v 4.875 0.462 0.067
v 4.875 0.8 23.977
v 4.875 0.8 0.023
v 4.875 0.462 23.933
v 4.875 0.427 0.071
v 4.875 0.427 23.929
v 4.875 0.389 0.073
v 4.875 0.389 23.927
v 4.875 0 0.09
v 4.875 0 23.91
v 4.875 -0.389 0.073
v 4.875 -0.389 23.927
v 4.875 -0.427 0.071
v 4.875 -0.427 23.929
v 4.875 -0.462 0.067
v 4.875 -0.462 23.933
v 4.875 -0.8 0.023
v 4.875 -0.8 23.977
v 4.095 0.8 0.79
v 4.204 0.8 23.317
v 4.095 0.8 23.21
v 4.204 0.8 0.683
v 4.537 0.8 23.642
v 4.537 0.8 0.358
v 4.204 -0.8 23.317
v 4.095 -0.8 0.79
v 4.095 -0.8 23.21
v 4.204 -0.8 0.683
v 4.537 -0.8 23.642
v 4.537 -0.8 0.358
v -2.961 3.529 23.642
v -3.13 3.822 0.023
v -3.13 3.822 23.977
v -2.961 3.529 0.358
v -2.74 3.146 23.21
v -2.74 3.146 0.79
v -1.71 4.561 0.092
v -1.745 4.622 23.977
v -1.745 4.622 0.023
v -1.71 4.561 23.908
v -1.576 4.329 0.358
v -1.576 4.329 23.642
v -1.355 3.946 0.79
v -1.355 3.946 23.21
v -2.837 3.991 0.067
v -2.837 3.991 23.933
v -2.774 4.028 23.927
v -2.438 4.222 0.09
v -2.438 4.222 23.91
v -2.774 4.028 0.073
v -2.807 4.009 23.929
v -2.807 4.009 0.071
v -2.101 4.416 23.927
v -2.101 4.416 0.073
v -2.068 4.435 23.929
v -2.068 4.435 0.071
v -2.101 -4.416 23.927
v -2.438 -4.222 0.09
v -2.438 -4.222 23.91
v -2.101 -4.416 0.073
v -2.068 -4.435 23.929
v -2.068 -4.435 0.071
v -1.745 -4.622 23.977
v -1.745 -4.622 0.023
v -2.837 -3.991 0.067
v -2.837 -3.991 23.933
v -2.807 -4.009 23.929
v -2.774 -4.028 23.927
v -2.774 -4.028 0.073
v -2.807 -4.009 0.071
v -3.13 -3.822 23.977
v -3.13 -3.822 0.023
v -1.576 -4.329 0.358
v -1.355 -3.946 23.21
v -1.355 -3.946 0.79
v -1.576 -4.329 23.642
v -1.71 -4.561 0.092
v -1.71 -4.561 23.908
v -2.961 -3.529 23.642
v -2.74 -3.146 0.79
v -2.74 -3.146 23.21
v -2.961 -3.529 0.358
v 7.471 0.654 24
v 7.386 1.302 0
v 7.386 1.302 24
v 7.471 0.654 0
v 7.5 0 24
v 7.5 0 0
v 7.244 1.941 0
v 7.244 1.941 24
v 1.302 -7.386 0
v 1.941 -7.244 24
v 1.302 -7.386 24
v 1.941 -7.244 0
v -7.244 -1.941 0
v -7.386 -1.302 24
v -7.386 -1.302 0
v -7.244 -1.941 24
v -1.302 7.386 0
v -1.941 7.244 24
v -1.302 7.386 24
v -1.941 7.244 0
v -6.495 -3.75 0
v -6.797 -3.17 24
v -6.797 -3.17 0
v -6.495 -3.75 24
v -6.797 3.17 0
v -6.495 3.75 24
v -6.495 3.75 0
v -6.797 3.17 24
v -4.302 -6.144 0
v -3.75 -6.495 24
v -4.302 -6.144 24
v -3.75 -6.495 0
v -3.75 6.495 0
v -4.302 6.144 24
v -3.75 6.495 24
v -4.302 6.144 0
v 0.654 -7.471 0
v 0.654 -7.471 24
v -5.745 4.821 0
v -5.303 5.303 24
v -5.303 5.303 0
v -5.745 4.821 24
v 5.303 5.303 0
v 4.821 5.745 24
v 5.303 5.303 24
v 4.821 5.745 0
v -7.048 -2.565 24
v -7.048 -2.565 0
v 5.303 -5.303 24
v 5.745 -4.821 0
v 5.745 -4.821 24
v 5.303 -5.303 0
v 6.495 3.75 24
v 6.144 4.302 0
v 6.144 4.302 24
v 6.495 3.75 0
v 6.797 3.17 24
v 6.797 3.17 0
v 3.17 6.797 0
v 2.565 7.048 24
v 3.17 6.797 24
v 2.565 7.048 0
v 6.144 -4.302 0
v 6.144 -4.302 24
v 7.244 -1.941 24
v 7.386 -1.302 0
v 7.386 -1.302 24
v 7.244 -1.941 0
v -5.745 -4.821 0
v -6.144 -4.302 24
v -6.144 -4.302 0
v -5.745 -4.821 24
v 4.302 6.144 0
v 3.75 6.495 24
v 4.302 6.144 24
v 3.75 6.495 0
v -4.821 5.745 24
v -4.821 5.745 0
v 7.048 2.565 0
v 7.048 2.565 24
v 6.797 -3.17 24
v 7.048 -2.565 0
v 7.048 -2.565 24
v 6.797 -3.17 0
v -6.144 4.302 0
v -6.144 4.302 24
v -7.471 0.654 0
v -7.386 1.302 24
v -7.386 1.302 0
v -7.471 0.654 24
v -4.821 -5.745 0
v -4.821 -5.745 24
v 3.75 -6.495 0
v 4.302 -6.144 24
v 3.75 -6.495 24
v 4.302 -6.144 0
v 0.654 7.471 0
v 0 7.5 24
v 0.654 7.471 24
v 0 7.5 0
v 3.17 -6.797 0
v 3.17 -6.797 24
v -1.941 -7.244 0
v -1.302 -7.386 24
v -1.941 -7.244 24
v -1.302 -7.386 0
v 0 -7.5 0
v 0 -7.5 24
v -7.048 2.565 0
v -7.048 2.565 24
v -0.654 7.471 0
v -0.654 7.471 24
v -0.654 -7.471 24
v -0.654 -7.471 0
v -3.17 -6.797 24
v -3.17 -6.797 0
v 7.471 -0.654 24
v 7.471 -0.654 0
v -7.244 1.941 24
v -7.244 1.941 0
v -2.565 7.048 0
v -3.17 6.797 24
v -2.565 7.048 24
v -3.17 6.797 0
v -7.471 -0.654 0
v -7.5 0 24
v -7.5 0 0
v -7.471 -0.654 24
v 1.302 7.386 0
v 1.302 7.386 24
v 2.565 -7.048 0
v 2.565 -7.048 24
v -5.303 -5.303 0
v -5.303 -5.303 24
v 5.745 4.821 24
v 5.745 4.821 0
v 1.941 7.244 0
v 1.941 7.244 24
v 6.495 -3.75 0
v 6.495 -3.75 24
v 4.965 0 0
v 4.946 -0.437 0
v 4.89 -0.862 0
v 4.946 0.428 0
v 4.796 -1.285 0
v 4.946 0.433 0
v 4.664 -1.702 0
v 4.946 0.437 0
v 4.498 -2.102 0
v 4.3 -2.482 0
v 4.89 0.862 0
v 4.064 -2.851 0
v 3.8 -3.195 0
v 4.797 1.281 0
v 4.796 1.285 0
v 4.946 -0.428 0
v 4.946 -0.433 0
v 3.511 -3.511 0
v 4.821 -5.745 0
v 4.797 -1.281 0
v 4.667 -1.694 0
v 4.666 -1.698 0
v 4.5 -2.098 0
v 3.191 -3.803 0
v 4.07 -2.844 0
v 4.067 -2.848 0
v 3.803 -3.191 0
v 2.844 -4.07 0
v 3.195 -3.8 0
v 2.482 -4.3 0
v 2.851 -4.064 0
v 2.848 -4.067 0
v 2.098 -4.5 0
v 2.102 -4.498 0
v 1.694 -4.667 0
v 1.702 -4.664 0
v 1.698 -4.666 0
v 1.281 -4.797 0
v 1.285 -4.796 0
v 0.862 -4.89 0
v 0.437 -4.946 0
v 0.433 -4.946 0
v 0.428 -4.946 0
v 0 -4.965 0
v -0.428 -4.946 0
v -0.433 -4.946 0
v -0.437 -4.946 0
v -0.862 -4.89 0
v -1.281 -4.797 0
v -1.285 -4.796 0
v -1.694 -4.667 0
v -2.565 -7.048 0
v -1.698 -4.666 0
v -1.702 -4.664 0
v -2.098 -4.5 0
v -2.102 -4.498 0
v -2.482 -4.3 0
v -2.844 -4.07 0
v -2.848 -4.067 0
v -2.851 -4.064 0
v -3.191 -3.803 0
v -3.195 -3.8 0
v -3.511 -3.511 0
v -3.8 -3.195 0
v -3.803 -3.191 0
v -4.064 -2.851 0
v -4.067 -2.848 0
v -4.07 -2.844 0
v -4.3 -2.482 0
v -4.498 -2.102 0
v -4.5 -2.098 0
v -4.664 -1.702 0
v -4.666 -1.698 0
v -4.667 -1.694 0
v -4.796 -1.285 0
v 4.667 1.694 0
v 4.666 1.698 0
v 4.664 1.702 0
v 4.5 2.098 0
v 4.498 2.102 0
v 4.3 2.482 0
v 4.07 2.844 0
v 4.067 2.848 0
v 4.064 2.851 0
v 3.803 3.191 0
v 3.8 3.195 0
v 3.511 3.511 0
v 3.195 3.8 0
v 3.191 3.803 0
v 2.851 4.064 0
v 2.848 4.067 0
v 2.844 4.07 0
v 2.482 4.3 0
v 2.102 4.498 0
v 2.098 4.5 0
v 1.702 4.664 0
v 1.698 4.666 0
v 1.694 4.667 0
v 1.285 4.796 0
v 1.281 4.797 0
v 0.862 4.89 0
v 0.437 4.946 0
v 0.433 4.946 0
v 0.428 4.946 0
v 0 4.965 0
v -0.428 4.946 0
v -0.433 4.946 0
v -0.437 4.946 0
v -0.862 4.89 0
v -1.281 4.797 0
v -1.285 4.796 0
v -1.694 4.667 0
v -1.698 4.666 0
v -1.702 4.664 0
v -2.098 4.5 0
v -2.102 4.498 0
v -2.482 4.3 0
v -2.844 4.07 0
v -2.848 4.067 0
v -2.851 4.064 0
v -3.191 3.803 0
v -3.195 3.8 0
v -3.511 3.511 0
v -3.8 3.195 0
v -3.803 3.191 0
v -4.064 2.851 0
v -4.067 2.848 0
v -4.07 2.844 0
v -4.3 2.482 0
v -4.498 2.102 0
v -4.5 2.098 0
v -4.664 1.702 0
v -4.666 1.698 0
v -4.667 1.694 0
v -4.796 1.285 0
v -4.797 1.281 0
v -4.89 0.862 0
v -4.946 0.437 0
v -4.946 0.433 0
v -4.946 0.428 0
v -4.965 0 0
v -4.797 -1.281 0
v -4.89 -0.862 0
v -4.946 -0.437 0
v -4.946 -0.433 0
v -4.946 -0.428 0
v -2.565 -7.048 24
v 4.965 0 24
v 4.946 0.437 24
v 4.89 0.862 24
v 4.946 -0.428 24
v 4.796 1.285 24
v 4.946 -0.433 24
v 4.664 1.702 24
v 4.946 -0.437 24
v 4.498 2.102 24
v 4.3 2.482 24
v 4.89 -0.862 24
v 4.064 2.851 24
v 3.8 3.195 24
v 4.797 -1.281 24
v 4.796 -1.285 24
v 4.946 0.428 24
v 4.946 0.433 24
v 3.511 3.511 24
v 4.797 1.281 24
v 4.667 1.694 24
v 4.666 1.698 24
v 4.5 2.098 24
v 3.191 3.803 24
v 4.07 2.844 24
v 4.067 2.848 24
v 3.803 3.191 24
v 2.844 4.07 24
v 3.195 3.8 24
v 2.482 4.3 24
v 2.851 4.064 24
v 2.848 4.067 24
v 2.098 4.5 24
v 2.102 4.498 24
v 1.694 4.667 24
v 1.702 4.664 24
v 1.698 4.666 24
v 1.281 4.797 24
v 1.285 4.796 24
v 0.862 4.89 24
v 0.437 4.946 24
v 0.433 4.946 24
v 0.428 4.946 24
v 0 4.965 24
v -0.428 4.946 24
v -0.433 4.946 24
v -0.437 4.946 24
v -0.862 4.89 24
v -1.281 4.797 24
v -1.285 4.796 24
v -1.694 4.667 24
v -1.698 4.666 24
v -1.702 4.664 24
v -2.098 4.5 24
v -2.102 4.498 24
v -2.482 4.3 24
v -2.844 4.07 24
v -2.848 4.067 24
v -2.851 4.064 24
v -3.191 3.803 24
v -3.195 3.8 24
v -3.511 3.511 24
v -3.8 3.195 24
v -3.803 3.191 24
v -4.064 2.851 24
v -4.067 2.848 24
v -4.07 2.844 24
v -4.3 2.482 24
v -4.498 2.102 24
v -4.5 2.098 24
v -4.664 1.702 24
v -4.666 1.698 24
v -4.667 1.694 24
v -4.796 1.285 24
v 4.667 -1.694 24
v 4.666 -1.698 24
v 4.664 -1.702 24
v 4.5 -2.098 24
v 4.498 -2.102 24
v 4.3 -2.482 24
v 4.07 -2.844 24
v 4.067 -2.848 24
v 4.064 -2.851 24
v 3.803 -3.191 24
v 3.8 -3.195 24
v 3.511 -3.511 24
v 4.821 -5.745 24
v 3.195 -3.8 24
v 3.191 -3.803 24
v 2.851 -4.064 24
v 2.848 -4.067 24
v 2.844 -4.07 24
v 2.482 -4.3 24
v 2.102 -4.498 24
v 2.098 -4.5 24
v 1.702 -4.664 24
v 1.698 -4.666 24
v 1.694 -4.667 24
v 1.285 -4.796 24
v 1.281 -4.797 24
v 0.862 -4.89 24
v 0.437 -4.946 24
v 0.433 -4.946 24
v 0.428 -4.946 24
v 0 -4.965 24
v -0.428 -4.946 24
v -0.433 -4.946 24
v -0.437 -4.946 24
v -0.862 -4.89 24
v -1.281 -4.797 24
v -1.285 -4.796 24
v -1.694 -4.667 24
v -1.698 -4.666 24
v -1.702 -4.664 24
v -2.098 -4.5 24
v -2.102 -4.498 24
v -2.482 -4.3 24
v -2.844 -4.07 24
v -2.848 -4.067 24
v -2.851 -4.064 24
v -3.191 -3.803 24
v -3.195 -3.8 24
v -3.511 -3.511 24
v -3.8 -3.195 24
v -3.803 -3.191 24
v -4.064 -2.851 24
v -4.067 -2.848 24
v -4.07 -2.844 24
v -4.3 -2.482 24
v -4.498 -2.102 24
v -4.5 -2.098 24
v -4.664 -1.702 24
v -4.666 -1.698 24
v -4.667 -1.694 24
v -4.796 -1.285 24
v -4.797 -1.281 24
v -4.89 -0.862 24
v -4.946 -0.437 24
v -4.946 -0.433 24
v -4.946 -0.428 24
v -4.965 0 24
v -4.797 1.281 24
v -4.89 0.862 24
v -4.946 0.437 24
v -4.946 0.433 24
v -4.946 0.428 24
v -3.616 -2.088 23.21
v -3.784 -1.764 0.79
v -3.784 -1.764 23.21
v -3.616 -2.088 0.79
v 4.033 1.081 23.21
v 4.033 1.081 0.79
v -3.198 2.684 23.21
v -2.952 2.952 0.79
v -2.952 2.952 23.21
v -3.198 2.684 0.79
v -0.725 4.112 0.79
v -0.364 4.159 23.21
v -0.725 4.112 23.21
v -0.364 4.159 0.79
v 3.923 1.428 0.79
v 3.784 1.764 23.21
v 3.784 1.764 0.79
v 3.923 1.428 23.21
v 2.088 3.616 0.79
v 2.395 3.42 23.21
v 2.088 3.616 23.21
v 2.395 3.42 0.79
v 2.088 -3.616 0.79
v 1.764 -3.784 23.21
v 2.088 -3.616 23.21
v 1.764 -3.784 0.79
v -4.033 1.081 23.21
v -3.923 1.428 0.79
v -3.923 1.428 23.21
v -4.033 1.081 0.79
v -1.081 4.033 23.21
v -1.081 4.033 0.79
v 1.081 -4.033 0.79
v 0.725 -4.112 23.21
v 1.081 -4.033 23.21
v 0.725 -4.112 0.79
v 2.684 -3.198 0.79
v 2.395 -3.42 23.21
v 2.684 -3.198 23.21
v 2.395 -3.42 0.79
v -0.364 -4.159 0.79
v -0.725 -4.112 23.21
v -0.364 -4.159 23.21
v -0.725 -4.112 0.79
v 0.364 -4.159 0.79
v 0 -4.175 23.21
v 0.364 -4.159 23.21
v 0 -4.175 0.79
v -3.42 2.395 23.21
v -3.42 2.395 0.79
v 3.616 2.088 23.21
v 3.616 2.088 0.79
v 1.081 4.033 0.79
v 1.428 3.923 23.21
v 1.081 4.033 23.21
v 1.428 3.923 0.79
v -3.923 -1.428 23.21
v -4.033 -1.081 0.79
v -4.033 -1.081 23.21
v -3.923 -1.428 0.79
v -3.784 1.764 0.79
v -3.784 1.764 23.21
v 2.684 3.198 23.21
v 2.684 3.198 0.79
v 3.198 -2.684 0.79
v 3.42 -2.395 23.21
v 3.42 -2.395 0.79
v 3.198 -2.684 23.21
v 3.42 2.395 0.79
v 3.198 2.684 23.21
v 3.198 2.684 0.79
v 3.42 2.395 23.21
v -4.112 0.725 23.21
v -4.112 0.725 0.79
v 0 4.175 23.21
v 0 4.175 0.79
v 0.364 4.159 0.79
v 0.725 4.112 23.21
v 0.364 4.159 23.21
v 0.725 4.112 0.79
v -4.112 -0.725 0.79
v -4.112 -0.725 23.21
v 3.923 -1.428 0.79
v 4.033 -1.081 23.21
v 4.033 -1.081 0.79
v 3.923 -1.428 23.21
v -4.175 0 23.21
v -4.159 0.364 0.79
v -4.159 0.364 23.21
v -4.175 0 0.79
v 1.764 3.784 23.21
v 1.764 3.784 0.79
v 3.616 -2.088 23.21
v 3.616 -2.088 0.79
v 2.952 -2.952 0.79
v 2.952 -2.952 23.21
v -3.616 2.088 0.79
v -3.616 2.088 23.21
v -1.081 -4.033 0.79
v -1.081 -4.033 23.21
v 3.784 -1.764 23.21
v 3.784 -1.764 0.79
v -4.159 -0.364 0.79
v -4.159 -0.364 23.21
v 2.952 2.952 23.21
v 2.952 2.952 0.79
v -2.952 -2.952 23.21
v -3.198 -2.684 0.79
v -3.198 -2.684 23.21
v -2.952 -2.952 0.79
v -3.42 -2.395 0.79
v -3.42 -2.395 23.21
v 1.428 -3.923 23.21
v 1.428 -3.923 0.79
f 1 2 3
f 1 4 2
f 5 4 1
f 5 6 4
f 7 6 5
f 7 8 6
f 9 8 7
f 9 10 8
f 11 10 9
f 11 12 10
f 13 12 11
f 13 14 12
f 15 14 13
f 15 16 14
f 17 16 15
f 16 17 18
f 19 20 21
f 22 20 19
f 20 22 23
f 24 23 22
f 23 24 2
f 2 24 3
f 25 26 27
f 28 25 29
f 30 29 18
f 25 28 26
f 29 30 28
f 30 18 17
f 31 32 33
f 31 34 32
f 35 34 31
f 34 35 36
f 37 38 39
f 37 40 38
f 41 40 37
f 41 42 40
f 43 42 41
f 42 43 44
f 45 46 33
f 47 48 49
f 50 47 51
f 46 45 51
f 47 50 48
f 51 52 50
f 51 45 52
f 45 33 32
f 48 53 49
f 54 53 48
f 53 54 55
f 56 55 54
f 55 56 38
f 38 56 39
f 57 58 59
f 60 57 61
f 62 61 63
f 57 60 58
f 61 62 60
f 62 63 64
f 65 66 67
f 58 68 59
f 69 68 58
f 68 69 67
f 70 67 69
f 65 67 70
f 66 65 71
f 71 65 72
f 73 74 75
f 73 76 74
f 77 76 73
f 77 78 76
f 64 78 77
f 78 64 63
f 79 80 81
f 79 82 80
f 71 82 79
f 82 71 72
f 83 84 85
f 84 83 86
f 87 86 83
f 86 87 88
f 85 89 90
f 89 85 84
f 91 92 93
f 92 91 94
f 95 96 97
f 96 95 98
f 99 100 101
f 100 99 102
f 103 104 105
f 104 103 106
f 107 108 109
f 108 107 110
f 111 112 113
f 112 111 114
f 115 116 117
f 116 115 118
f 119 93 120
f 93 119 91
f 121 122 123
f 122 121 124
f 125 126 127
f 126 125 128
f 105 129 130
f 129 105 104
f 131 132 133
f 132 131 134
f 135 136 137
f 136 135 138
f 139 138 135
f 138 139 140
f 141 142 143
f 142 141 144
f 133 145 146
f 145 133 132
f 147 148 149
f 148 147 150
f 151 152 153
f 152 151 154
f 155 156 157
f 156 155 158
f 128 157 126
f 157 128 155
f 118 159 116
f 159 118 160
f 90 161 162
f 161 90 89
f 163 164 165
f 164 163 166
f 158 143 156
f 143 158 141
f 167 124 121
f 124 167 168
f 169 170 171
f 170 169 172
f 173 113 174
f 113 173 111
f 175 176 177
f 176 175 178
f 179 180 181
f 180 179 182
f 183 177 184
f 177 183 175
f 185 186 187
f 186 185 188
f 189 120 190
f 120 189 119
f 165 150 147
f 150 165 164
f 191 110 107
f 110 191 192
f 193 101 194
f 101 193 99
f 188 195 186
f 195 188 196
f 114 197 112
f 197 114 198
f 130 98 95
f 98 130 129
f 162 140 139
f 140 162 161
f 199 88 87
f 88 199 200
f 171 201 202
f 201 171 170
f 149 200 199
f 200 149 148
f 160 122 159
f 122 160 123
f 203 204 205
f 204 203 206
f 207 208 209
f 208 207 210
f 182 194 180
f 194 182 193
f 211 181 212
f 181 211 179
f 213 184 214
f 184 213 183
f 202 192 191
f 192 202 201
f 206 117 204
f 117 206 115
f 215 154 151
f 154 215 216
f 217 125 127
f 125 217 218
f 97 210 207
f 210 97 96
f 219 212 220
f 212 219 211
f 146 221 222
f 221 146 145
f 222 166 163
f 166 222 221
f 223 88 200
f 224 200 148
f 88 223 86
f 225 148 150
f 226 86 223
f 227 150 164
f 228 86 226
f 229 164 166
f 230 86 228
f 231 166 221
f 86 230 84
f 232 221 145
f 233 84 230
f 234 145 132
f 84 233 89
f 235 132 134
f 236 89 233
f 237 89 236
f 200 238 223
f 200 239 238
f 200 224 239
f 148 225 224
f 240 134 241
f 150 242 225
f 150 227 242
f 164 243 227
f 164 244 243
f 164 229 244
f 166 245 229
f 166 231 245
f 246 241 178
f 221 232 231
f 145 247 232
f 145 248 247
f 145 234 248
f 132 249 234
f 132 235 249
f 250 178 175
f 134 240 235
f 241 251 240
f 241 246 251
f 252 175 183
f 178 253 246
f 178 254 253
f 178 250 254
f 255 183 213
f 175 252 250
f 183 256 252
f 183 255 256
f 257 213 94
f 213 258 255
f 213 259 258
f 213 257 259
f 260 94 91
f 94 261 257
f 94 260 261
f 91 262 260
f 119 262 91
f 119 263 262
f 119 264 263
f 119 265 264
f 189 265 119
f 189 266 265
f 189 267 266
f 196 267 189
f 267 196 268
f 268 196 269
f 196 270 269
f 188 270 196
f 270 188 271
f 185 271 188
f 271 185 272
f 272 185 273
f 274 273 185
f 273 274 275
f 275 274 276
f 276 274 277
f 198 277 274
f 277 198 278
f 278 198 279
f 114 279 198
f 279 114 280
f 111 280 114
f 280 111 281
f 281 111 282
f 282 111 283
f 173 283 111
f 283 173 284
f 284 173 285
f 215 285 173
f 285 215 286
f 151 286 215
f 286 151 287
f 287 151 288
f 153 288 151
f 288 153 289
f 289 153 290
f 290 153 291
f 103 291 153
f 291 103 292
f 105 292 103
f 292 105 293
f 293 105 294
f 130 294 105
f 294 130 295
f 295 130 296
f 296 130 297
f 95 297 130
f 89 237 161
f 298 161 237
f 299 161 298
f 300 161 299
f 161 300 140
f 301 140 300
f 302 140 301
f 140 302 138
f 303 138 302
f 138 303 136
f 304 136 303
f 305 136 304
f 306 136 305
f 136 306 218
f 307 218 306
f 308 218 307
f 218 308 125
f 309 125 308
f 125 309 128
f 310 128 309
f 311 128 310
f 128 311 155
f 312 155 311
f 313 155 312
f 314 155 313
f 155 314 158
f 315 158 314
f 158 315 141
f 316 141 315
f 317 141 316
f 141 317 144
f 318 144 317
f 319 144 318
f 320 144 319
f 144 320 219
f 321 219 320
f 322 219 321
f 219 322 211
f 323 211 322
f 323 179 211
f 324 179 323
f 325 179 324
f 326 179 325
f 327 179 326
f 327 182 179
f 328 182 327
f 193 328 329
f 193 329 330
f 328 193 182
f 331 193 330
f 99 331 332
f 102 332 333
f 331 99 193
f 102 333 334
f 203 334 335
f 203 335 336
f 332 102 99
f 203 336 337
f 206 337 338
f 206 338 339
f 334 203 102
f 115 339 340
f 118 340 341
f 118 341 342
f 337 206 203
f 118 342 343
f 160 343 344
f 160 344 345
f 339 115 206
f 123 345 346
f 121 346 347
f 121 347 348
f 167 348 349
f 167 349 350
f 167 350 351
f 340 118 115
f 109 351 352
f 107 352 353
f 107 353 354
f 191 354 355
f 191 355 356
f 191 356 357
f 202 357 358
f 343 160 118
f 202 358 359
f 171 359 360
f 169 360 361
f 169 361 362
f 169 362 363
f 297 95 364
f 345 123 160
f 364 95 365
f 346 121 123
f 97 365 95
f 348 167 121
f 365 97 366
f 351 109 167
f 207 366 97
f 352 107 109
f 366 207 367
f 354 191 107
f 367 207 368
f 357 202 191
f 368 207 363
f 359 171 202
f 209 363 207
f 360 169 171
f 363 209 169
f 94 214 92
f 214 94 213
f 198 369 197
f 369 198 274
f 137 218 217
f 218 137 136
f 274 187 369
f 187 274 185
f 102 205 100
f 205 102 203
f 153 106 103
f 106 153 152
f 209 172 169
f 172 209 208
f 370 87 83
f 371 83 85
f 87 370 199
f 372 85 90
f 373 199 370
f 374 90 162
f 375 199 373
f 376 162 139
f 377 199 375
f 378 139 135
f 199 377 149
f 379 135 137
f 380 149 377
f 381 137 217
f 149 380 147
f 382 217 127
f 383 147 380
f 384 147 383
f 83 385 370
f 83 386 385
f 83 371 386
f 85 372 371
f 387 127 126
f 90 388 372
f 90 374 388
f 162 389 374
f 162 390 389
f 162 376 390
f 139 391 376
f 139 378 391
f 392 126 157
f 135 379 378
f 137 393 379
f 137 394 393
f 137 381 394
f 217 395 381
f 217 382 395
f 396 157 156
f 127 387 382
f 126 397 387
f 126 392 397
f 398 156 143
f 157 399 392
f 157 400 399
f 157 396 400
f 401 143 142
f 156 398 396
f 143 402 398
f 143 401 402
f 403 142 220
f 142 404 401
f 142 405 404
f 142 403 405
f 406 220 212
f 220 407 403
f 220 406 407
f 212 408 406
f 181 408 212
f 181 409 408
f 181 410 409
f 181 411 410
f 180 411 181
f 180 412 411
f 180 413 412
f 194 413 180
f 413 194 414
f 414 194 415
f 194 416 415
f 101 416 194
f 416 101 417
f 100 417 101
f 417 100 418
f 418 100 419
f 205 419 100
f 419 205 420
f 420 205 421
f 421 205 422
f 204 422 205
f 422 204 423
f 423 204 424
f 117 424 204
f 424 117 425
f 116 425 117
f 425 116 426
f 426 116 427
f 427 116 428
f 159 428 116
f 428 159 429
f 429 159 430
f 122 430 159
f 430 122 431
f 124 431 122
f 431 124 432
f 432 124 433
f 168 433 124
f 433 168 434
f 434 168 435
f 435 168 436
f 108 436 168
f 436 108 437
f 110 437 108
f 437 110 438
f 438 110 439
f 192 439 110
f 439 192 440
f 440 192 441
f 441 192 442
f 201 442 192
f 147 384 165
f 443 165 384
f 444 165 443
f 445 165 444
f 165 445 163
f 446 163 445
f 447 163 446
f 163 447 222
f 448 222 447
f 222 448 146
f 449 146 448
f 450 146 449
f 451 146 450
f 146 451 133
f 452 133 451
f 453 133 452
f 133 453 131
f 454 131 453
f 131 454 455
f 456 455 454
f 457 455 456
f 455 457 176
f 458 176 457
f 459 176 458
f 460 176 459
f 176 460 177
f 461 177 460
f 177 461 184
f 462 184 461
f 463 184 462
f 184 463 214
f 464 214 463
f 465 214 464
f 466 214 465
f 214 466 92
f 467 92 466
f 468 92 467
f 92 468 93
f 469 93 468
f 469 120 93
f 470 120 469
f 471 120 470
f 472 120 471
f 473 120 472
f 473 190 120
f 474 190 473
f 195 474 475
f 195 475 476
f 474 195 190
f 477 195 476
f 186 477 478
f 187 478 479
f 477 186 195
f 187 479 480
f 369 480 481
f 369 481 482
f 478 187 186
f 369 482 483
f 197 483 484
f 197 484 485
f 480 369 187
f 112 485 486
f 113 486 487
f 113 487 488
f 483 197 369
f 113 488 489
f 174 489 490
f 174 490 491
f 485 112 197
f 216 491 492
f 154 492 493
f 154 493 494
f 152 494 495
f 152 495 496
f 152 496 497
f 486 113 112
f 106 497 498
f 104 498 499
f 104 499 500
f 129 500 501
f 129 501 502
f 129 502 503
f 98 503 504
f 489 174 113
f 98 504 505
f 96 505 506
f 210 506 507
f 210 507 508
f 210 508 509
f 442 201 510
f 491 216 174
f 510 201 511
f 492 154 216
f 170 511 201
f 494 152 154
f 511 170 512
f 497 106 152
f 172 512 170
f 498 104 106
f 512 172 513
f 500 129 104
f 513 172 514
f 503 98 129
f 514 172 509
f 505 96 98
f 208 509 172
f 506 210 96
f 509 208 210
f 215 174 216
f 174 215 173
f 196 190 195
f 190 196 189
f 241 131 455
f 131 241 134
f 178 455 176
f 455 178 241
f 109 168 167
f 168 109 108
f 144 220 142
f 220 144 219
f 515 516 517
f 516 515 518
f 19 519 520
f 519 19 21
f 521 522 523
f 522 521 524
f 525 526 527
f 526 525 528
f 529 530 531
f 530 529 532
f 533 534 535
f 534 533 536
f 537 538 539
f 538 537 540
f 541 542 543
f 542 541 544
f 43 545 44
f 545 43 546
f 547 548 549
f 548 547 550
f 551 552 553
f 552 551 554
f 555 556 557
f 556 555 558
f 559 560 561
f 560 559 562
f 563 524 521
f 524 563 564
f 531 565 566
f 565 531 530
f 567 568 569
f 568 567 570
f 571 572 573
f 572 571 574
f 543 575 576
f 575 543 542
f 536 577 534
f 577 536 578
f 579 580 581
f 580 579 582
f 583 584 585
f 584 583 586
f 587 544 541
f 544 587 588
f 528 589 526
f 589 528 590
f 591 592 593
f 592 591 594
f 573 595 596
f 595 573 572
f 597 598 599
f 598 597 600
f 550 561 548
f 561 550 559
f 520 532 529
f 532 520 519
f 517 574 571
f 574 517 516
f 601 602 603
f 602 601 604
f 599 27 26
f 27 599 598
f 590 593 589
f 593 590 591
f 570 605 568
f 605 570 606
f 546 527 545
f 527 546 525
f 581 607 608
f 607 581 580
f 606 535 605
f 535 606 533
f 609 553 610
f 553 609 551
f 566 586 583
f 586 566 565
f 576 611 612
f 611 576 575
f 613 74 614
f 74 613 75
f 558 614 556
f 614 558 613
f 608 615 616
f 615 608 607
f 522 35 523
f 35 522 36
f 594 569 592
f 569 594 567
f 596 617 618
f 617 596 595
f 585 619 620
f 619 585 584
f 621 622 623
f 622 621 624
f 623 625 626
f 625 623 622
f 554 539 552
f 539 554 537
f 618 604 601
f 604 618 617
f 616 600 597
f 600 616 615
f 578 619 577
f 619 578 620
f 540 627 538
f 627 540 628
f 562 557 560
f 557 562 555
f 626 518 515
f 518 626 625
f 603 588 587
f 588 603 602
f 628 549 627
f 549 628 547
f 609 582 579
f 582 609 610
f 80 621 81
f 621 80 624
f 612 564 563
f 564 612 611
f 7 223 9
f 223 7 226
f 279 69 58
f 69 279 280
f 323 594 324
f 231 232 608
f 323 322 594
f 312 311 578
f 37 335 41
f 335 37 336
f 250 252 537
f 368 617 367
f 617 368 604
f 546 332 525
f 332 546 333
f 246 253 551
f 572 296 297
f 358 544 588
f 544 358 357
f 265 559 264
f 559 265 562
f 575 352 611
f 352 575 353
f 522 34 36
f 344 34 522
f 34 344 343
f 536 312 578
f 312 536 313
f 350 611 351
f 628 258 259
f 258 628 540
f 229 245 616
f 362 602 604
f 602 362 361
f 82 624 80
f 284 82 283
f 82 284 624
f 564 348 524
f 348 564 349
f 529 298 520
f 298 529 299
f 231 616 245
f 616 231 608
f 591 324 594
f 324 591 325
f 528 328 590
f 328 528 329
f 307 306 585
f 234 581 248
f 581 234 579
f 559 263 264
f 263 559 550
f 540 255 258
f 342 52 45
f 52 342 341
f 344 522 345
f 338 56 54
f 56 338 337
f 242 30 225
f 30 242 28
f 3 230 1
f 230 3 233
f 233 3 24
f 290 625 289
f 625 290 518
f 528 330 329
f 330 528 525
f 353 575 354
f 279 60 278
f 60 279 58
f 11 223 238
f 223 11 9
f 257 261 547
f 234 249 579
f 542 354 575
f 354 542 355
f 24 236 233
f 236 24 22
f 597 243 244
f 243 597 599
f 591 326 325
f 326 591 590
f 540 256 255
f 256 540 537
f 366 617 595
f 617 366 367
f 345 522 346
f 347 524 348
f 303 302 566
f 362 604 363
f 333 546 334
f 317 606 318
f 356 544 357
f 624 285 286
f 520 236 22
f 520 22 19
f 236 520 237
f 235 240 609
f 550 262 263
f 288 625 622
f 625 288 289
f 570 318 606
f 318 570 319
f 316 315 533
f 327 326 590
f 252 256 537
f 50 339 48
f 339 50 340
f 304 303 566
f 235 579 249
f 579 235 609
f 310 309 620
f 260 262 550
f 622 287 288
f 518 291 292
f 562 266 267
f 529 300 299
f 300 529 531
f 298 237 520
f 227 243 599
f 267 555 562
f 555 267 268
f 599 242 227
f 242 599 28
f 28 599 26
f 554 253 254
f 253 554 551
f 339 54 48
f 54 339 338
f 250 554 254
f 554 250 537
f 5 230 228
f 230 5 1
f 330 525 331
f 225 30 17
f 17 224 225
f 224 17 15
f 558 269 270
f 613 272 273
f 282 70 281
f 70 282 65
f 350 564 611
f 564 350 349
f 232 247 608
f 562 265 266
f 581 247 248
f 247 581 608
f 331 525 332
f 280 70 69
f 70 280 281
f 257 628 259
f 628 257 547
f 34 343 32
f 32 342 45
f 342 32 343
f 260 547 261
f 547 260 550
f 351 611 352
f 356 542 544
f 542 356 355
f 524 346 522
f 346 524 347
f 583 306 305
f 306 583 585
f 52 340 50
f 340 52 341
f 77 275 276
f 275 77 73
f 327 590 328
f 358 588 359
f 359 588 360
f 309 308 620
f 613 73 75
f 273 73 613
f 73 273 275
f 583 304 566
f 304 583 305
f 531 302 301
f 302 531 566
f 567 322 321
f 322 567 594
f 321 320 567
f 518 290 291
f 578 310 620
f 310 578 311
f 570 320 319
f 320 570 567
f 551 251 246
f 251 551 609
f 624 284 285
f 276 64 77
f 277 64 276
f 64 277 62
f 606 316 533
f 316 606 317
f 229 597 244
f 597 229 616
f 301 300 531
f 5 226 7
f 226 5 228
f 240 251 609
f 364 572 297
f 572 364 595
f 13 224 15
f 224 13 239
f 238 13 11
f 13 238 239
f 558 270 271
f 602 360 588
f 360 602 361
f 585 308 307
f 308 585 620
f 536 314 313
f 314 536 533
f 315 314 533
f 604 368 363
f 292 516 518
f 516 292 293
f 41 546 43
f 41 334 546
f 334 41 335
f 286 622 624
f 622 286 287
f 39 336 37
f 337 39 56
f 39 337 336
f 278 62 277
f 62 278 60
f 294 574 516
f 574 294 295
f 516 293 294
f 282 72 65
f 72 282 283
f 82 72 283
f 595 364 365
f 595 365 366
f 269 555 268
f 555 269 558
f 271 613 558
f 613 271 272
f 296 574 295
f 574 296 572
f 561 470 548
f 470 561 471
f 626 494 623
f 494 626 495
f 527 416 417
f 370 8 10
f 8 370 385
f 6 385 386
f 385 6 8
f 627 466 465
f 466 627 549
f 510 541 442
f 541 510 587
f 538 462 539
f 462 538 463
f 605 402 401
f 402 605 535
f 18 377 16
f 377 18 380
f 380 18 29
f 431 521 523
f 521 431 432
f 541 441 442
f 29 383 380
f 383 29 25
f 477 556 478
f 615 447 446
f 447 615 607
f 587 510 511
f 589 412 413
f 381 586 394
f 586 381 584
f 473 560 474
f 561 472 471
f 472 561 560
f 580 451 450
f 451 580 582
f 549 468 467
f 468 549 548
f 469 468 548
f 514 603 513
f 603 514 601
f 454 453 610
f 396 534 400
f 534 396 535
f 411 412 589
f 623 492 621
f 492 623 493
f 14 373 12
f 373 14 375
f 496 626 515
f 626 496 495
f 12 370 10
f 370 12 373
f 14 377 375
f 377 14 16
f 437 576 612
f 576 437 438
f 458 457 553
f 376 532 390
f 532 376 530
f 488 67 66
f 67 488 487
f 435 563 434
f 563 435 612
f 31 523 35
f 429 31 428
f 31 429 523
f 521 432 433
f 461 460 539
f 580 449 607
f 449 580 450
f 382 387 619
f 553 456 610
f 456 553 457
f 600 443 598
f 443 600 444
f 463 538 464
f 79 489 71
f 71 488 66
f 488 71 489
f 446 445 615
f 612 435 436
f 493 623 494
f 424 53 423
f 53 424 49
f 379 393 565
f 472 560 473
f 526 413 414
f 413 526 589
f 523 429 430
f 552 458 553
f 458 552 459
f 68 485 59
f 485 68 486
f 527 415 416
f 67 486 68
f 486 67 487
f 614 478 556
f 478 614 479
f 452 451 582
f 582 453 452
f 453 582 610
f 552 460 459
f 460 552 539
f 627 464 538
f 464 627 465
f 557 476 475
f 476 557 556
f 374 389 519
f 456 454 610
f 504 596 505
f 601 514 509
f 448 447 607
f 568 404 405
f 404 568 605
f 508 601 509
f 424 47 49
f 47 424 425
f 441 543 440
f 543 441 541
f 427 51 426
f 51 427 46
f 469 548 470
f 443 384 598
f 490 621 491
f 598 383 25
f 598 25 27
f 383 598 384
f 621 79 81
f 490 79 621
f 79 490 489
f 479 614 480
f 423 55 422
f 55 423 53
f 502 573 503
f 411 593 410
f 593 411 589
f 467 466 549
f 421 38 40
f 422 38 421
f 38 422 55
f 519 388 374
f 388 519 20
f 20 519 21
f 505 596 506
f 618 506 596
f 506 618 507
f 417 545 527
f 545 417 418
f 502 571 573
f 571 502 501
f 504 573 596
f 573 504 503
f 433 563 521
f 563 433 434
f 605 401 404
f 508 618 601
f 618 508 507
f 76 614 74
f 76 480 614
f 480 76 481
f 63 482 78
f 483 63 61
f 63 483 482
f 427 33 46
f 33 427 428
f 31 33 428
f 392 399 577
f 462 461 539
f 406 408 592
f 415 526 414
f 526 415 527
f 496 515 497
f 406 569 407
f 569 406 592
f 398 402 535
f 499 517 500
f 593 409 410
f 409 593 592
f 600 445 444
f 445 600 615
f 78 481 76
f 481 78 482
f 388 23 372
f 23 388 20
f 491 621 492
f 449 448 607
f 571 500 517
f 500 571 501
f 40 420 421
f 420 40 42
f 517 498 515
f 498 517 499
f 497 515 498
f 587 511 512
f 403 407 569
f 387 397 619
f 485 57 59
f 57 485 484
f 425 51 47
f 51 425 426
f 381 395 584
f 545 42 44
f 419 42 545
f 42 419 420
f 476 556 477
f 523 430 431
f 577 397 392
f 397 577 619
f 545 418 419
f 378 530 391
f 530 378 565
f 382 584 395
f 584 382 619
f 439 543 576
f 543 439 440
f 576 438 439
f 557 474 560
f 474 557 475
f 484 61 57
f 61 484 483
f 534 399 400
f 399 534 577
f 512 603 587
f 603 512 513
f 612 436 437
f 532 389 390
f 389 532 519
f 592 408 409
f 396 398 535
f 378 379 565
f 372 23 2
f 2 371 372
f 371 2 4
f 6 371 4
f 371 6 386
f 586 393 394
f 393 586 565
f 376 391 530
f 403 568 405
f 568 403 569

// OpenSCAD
// Printed Z-axis bushing: a drop-in replacement for an LM8UU linear bearing.
// Same outside size (15mm x 24mm), so it presses into the carriage the same way.
// The bore has three shallow channels so dust has somewhere to go and the
// contact area is smaller. Add a drop of light machine oil.
// Print standing up (axis vertical) so the bore comes out round.

od      = 15;     // outside, same as an LM8UU
length  = 24;
bore_d  = 8.35;   // 8mm rod plus running clearance; PETG holes print a little small
channel = 1.6;    // width of the dust channels
chamfer = 0.8;    // lead-in at each end of the bore

$fn = 72;

module z_bushing() {
    difference() {
        cylinder(h = length, d = od);
        translate([0, 0, -1]) cylinder(h = length + 2, d = bore_d);
        for (i = [0 : 2])
            rotate([0, 0, 120 * i]) translate([bore_d / 2 - 0.2, -channel / 2, -1]) cube([0.9, channel, length + 2]);
        translate([0, 0, -0.01]) cylinder(h = chamfer, d1 = bore_d + 2 * chamfer, d2 = bore_d);
        translate([0, 0, length - chamfer + 0.01]) cylinder(h = chamfer, d1 = bore_d, d2 = bore_d + 2 * chamfer);
    }
}

z_bushing();
